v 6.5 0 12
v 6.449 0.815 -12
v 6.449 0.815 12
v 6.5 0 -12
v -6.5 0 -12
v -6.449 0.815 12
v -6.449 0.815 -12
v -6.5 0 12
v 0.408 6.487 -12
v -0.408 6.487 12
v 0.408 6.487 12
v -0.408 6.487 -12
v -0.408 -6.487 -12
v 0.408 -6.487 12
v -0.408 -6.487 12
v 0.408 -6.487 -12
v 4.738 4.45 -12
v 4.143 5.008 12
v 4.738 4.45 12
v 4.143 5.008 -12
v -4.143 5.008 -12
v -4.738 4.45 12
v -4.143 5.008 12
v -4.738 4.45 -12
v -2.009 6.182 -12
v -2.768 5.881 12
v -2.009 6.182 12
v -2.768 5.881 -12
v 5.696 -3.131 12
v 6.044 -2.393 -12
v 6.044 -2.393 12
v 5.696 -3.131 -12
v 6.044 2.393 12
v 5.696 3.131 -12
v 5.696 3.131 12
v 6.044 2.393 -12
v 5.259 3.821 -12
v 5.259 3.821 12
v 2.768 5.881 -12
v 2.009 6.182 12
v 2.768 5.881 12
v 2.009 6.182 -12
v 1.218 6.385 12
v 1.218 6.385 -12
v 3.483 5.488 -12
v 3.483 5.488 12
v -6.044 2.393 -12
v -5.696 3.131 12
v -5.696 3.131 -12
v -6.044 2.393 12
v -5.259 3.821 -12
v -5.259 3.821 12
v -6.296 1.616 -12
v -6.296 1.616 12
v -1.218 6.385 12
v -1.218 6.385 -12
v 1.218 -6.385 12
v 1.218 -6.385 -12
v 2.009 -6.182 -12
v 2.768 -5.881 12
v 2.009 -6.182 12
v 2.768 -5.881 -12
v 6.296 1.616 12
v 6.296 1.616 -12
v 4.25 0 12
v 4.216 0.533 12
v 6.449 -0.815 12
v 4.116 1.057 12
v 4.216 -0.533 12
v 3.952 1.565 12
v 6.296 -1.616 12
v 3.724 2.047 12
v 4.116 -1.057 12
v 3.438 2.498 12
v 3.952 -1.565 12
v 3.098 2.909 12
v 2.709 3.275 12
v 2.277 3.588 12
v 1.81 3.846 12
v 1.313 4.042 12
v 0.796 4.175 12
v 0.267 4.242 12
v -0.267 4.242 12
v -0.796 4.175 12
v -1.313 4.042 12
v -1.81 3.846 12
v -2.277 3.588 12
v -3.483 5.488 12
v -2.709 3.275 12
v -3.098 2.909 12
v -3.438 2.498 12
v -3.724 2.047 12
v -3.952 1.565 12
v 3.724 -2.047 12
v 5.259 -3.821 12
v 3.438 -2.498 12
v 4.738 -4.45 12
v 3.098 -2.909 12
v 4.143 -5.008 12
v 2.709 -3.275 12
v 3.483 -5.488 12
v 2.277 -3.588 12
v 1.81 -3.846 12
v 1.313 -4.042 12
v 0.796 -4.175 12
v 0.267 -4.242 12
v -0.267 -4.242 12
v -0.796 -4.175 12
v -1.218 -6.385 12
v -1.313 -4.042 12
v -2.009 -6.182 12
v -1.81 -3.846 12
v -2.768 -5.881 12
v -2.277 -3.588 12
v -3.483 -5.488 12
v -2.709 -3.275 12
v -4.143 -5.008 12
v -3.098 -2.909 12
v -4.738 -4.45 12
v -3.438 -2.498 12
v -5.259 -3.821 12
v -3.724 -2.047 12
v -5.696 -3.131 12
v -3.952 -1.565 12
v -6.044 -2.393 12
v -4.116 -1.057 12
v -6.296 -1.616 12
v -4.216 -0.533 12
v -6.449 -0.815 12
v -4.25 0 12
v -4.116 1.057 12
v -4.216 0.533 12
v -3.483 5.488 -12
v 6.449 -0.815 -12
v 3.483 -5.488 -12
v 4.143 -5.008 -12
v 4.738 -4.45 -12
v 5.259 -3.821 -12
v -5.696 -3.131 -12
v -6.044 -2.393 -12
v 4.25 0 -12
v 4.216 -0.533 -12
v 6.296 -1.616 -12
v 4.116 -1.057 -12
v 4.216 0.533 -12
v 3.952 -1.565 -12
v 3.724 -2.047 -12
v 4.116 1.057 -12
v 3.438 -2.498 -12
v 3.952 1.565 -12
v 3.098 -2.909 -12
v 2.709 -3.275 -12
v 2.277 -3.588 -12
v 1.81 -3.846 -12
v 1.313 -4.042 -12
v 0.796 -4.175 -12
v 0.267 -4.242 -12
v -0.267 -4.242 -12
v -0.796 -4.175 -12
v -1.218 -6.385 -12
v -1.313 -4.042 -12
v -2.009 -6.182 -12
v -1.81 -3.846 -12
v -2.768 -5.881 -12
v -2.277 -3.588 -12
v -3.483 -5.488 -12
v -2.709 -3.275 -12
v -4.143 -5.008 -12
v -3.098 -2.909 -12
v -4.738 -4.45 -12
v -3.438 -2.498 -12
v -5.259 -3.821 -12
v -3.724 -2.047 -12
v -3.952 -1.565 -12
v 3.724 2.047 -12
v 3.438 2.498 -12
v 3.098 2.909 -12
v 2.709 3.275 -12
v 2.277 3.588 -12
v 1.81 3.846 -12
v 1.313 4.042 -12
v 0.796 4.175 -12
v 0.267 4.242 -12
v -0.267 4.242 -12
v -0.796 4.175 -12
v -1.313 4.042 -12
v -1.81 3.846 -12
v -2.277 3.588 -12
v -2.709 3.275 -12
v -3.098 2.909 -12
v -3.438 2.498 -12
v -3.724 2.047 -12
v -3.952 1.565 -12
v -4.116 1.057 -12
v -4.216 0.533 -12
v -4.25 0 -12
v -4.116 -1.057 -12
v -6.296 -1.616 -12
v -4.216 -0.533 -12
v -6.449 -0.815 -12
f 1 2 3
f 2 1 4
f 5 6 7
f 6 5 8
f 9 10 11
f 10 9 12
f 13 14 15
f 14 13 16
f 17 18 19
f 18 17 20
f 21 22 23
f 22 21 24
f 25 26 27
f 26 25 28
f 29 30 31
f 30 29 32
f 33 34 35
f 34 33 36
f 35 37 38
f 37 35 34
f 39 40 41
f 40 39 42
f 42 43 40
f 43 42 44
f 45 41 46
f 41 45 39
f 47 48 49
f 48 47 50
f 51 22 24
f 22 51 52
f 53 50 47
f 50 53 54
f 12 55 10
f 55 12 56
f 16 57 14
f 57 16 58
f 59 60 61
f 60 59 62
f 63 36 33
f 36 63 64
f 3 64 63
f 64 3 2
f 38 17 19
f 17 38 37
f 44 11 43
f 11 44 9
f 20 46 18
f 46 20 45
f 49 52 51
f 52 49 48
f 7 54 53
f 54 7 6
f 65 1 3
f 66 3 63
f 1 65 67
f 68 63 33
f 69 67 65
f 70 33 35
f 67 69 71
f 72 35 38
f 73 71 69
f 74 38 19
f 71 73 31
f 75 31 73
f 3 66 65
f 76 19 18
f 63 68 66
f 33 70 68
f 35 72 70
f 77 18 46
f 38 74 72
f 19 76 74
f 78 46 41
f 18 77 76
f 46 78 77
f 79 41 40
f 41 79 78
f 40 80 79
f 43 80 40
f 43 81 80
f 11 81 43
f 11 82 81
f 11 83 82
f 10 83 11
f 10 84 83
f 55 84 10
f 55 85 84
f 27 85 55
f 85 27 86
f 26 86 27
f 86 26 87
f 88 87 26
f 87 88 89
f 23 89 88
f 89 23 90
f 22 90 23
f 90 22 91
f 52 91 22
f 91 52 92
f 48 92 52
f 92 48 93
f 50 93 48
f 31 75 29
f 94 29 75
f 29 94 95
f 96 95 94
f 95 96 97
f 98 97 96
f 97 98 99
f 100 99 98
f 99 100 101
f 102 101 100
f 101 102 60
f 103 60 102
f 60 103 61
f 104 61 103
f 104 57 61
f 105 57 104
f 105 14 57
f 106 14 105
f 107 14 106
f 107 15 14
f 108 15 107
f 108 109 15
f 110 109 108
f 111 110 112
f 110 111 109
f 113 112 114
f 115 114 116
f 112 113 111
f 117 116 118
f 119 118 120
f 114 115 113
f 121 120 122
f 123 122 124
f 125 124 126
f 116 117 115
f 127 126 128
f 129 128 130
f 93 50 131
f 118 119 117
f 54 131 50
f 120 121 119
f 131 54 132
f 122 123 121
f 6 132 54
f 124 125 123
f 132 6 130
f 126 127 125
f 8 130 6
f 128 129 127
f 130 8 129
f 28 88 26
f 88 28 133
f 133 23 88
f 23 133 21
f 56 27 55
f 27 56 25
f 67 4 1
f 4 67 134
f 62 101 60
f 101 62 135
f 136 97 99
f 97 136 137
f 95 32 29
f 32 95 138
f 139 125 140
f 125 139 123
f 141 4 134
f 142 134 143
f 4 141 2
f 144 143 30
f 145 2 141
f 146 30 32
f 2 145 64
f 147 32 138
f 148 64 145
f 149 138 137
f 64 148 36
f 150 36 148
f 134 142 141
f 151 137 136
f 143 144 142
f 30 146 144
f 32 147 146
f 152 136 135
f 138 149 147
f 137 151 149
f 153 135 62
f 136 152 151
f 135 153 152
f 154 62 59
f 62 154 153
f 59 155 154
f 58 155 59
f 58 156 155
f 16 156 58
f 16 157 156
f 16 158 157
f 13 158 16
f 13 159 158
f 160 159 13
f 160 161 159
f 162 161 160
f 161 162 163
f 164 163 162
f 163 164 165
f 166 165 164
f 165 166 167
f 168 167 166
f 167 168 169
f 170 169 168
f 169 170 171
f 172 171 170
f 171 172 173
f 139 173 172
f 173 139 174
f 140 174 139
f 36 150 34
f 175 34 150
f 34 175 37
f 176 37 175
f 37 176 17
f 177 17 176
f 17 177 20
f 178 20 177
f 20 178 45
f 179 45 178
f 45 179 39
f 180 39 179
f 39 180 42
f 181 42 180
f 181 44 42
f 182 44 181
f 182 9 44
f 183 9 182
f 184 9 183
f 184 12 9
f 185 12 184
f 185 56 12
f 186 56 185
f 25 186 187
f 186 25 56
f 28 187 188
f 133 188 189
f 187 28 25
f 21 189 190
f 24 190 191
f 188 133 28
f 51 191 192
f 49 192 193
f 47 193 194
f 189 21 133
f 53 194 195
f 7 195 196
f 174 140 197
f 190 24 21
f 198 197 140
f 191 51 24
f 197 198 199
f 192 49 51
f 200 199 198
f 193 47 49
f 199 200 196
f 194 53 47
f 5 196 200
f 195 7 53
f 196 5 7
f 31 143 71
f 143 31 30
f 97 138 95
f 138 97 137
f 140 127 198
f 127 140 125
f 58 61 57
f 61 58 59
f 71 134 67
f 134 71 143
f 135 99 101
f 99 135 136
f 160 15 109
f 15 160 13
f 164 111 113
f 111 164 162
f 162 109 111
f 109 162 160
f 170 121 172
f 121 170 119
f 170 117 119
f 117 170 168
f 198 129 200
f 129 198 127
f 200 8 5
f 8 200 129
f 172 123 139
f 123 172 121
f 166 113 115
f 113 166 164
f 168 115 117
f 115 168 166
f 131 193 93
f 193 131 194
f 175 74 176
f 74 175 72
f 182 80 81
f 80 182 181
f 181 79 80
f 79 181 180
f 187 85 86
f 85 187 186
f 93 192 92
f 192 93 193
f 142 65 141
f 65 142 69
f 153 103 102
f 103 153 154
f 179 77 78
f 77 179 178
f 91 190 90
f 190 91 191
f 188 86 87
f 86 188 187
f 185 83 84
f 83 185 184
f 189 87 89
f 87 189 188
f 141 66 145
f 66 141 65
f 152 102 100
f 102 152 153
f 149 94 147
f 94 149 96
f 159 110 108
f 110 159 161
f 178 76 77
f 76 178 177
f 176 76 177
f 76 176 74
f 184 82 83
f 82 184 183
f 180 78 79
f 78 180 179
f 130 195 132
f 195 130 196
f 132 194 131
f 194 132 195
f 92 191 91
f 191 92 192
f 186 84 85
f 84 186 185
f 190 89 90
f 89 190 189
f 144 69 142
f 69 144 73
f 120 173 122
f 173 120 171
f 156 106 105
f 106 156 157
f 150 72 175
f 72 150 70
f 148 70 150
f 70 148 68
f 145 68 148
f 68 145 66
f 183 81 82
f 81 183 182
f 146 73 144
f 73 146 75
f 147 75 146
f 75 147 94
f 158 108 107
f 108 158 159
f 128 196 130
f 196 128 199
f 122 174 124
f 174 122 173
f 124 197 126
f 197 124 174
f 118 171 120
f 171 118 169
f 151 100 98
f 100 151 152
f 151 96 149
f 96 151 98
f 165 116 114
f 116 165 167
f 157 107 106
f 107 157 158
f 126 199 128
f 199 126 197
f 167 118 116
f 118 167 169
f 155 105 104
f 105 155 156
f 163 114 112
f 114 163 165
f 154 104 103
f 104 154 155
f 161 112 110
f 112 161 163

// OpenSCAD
$fn = 50;


difference() {
	union() {
		translate(v = [0, 0, -12.0000000000]) {
			cylinder(h = 24, r = 6.5000000000);
		}
	}
	union() {
		translate(v = [0, 0, -100.0000000000]) {
			cylinder(h = 200, r = 4.2500000000);
		}
	}
}
